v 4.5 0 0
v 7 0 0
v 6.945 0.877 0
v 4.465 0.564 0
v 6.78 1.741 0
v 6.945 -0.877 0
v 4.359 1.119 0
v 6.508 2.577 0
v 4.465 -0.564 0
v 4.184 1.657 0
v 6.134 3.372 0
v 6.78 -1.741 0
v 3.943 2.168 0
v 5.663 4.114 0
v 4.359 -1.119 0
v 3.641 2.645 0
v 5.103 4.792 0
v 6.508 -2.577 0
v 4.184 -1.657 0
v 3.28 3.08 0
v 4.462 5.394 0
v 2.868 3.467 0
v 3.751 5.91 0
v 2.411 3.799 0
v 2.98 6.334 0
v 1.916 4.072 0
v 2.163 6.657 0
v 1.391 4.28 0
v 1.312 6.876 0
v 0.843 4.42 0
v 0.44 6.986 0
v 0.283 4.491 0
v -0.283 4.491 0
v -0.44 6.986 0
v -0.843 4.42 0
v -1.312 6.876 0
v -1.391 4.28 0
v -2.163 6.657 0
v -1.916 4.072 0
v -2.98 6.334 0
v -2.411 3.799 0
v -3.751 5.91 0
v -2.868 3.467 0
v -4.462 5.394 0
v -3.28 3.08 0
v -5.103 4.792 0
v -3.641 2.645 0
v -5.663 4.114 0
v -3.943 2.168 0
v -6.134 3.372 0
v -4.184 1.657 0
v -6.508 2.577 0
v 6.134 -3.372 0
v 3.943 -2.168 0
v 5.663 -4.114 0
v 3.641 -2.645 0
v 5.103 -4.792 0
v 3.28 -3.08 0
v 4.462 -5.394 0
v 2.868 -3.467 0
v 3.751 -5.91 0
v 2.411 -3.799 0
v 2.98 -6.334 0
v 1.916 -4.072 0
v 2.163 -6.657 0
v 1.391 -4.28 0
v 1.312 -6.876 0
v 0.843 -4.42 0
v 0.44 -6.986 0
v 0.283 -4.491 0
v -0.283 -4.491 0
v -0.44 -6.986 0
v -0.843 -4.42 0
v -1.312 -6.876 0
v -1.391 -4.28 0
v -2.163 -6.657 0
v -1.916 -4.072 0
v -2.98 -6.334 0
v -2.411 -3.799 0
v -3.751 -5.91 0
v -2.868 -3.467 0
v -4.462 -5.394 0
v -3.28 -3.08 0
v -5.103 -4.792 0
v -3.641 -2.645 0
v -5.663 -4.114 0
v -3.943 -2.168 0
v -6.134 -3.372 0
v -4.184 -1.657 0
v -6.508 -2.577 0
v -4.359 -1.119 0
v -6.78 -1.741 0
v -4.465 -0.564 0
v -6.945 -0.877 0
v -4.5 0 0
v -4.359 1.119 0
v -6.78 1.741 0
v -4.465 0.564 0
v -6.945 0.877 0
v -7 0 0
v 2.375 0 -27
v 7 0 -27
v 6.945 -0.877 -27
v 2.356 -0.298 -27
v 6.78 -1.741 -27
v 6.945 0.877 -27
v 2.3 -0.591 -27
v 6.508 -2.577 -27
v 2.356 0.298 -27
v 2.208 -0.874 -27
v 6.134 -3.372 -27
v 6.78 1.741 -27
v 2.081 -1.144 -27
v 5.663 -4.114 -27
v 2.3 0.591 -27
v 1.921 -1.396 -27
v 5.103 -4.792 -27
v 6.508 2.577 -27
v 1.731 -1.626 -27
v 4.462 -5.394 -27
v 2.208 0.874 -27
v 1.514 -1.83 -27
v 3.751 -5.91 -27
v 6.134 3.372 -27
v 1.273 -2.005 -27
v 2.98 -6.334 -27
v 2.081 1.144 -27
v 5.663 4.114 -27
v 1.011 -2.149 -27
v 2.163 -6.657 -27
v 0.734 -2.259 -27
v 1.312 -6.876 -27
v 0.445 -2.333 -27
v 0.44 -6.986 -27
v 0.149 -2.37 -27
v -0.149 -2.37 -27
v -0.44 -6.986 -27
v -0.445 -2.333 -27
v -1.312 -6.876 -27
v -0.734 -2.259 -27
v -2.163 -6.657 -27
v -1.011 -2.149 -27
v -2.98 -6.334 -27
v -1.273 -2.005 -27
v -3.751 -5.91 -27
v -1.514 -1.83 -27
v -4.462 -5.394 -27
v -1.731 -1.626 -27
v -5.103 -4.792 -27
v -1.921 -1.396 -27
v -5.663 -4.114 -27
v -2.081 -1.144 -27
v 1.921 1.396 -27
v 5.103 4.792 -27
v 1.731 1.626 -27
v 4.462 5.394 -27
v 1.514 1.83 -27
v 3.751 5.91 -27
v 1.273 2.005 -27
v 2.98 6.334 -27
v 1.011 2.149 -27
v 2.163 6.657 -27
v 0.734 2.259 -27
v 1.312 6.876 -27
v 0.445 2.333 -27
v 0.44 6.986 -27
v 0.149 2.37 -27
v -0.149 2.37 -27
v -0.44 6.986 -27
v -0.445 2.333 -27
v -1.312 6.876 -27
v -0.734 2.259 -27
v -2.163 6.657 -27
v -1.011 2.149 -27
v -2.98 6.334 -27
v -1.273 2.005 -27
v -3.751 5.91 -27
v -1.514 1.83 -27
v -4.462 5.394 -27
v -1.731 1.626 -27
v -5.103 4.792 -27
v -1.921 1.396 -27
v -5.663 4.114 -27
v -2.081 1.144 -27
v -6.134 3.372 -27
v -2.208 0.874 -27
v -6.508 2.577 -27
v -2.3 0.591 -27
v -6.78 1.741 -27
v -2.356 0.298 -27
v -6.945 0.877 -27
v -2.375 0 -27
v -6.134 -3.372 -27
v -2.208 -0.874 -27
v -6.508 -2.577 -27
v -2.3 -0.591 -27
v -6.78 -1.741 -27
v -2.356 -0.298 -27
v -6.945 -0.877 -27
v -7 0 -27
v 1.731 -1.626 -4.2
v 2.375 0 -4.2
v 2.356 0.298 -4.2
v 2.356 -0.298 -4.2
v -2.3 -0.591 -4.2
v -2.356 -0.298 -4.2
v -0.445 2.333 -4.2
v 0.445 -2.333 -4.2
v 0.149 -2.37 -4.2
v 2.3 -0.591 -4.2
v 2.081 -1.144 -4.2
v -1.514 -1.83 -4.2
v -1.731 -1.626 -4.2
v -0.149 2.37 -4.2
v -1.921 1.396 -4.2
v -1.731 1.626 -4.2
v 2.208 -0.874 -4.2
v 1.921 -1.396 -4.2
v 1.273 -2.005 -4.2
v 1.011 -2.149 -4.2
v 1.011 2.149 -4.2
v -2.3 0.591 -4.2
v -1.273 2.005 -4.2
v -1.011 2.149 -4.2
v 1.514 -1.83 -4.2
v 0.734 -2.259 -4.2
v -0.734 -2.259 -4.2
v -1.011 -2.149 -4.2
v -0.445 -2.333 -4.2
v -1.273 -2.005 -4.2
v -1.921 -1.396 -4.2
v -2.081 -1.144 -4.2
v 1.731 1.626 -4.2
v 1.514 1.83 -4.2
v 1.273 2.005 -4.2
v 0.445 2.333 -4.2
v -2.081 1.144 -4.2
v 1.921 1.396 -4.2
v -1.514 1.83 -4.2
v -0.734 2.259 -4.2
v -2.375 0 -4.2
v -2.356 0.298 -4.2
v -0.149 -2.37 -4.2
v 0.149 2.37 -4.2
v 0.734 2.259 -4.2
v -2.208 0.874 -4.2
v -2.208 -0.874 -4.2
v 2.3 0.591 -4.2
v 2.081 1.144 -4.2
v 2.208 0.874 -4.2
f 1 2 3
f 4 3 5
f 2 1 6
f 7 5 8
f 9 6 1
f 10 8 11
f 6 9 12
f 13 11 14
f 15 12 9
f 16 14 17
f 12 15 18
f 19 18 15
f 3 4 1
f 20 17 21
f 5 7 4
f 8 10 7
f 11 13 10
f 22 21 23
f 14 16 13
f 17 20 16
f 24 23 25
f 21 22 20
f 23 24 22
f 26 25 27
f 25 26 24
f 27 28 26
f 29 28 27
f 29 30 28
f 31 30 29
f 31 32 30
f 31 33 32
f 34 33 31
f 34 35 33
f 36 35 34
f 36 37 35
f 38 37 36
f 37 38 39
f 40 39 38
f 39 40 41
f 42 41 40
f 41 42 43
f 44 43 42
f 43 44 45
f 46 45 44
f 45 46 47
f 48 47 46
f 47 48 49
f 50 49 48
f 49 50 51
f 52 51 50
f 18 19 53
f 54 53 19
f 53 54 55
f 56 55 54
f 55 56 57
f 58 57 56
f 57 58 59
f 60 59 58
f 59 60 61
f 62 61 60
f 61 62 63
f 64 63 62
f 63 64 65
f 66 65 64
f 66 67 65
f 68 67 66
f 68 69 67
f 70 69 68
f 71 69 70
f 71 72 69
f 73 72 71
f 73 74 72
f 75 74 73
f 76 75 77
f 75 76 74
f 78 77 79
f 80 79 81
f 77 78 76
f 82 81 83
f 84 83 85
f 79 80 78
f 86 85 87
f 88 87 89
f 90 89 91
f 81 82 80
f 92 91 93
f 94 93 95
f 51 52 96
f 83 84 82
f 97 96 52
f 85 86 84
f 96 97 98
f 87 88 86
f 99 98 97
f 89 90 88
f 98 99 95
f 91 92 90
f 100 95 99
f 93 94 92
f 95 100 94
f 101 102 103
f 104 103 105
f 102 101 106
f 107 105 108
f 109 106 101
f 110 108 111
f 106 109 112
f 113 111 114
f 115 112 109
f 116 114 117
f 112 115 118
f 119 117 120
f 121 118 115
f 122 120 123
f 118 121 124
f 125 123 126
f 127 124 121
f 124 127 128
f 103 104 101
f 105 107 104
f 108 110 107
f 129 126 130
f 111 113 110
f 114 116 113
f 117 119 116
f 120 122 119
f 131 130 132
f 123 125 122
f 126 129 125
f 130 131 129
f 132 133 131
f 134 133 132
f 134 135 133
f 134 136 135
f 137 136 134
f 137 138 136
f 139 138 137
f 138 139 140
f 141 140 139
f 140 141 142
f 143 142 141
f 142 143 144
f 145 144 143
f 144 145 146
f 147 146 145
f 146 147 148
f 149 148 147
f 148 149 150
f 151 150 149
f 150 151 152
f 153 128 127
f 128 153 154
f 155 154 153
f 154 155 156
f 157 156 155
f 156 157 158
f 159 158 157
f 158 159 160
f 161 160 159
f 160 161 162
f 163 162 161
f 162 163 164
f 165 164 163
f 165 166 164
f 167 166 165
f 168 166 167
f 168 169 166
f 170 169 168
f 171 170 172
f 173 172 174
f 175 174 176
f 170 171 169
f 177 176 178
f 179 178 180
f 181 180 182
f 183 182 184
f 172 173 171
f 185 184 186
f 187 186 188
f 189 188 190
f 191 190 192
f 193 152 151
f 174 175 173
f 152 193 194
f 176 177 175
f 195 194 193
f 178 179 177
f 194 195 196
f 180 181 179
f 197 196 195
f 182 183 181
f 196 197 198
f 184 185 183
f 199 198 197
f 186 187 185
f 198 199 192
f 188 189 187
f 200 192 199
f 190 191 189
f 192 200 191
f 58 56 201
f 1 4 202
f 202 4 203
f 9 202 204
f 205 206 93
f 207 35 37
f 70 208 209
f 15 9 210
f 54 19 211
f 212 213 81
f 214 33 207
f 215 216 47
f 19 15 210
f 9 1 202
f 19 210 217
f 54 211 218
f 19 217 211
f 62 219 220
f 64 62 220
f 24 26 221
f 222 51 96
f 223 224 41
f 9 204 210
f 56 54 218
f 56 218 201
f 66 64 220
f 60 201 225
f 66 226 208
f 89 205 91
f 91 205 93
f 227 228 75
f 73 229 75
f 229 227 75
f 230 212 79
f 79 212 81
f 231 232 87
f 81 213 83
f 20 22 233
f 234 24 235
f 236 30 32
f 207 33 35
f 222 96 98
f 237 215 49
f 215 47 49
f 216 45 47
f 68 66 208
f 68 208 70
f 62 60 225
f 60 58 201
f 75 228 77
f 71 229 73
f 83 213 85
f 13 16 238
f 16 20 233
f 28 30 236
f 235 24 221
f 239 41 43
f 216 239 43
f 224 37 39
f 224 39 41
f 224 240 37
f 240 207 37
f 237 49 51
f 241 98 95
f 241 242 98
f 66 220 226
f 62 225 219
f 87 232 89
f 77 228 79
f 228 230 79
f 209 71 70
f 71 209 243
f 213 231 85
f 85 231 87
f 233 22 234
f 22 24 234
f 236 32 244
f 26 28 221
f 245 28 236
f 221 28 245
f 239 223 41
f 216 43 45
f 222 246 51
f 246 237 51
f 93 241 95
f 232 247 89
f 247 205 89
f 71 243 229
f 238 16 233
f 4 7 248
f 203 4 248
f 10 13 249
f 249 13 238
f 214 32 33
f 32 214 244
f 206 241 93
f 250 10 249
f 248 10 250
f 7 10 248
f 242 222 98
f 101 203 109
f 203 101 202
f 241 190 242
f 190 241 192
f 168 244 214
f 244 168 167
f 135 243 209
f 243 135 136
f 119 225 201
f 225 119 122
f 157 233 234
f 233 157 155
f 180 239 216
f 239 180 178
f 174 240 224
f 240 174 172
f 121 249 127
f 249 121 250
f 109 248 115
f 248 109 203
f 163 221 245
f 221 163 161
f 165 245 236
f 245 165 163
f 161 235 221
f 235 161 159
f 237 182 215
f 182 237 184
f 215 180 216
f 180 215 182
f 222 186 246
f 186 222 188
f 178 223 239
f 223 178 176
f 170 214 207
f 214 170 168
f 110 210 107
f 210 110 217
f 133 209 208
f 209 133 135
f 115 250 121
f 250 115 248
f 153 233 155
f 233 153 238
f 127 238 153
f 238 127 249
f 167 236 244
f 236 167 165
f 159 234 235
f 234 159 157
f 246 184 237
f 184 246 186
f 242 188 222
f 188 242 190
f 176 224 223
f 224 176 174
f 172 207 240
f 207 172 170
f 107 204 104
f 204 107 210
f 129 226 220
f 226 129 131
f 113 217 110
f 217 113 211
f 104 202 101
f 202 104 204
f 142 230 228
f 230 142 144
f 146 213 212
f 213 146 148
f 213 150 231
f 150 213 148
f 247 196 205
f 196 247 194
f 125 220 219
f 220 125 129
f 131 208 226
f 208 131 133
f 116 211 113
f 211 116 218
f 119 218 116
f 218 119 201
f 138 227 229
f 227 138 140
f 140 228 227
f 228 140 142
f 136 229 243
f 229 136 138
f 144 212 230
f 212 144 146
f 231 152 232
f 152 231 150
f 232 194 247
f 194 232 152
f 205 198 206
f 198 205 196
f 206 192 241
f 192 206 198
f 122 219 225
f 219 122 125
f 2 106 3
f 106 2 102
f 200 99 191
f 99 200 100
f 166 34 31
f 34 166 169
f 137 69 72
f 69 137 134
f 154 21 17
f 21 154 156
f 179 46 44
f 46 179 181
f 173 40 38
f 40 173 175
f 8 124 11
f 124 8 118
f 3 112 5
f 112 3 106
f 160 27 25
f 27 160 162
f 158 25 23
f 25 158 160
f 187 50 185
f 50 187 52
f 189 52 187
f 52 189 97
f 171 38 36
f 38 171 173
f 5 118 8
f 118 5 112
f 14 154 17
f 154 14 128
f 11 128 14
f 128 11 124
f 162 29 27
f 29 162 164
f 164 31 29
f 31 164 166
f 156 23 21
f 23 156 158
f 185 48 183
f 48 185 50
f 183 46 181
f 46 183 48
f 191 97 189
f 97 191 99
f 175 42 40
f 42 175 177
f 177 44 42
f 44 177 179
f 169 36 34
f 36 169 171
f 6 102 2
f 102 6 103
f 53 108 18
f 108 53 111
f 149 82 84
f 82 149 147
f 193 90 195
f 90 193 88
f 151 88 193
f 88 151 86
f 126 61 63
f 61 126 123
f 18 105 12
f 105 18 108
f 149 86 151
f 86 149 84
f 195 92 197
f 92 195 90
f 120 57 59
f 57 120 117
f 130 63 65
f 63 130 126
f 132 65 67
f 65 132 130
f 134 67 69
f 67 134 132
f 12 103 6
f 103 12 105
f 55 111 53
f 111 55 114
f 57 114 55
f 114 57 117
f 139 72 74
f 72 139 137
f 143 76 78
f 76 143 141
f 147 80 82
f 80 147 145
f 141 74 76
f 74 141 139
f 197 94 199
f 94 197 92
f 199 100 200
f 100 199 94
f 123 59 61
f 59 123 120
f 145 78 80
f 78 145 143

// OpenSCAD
$fn = 50;


difference() {
	union() {
		translate(v = [0, 0, -27.0000000000]) {
			cylinder(h = 27, r = 7.0000000000);
		}
		cylinder(h = 0, r = 13.0000000000);
	}
	union() {
		translate(v = [0, 0, 0]) {
			rotate(a = [0, 0, 0]) {
				difference() {
					union() {
						#translate(v = [0, 0, -27.0000000000]) {
							cylinder(h = 27, r = 2.2500000000);
						}
						#translate(v = [0, 0, -4.2000000000]) {
							cylinder(h = 4.2000000000, r1 = 2.3750000000, r2 = 4.5000000000);
						}
						#translate(v = [0, 0, -27.0000000000]) {
							cylinder(h = 27, r = 2.3750000000);
						}
						#translate(v = [0, 0, -27.0000000000]) {
							cylinder(h = 27, r = 2.2500000000);
						}
					}
					union();
				}
			}
		}
	}
}
